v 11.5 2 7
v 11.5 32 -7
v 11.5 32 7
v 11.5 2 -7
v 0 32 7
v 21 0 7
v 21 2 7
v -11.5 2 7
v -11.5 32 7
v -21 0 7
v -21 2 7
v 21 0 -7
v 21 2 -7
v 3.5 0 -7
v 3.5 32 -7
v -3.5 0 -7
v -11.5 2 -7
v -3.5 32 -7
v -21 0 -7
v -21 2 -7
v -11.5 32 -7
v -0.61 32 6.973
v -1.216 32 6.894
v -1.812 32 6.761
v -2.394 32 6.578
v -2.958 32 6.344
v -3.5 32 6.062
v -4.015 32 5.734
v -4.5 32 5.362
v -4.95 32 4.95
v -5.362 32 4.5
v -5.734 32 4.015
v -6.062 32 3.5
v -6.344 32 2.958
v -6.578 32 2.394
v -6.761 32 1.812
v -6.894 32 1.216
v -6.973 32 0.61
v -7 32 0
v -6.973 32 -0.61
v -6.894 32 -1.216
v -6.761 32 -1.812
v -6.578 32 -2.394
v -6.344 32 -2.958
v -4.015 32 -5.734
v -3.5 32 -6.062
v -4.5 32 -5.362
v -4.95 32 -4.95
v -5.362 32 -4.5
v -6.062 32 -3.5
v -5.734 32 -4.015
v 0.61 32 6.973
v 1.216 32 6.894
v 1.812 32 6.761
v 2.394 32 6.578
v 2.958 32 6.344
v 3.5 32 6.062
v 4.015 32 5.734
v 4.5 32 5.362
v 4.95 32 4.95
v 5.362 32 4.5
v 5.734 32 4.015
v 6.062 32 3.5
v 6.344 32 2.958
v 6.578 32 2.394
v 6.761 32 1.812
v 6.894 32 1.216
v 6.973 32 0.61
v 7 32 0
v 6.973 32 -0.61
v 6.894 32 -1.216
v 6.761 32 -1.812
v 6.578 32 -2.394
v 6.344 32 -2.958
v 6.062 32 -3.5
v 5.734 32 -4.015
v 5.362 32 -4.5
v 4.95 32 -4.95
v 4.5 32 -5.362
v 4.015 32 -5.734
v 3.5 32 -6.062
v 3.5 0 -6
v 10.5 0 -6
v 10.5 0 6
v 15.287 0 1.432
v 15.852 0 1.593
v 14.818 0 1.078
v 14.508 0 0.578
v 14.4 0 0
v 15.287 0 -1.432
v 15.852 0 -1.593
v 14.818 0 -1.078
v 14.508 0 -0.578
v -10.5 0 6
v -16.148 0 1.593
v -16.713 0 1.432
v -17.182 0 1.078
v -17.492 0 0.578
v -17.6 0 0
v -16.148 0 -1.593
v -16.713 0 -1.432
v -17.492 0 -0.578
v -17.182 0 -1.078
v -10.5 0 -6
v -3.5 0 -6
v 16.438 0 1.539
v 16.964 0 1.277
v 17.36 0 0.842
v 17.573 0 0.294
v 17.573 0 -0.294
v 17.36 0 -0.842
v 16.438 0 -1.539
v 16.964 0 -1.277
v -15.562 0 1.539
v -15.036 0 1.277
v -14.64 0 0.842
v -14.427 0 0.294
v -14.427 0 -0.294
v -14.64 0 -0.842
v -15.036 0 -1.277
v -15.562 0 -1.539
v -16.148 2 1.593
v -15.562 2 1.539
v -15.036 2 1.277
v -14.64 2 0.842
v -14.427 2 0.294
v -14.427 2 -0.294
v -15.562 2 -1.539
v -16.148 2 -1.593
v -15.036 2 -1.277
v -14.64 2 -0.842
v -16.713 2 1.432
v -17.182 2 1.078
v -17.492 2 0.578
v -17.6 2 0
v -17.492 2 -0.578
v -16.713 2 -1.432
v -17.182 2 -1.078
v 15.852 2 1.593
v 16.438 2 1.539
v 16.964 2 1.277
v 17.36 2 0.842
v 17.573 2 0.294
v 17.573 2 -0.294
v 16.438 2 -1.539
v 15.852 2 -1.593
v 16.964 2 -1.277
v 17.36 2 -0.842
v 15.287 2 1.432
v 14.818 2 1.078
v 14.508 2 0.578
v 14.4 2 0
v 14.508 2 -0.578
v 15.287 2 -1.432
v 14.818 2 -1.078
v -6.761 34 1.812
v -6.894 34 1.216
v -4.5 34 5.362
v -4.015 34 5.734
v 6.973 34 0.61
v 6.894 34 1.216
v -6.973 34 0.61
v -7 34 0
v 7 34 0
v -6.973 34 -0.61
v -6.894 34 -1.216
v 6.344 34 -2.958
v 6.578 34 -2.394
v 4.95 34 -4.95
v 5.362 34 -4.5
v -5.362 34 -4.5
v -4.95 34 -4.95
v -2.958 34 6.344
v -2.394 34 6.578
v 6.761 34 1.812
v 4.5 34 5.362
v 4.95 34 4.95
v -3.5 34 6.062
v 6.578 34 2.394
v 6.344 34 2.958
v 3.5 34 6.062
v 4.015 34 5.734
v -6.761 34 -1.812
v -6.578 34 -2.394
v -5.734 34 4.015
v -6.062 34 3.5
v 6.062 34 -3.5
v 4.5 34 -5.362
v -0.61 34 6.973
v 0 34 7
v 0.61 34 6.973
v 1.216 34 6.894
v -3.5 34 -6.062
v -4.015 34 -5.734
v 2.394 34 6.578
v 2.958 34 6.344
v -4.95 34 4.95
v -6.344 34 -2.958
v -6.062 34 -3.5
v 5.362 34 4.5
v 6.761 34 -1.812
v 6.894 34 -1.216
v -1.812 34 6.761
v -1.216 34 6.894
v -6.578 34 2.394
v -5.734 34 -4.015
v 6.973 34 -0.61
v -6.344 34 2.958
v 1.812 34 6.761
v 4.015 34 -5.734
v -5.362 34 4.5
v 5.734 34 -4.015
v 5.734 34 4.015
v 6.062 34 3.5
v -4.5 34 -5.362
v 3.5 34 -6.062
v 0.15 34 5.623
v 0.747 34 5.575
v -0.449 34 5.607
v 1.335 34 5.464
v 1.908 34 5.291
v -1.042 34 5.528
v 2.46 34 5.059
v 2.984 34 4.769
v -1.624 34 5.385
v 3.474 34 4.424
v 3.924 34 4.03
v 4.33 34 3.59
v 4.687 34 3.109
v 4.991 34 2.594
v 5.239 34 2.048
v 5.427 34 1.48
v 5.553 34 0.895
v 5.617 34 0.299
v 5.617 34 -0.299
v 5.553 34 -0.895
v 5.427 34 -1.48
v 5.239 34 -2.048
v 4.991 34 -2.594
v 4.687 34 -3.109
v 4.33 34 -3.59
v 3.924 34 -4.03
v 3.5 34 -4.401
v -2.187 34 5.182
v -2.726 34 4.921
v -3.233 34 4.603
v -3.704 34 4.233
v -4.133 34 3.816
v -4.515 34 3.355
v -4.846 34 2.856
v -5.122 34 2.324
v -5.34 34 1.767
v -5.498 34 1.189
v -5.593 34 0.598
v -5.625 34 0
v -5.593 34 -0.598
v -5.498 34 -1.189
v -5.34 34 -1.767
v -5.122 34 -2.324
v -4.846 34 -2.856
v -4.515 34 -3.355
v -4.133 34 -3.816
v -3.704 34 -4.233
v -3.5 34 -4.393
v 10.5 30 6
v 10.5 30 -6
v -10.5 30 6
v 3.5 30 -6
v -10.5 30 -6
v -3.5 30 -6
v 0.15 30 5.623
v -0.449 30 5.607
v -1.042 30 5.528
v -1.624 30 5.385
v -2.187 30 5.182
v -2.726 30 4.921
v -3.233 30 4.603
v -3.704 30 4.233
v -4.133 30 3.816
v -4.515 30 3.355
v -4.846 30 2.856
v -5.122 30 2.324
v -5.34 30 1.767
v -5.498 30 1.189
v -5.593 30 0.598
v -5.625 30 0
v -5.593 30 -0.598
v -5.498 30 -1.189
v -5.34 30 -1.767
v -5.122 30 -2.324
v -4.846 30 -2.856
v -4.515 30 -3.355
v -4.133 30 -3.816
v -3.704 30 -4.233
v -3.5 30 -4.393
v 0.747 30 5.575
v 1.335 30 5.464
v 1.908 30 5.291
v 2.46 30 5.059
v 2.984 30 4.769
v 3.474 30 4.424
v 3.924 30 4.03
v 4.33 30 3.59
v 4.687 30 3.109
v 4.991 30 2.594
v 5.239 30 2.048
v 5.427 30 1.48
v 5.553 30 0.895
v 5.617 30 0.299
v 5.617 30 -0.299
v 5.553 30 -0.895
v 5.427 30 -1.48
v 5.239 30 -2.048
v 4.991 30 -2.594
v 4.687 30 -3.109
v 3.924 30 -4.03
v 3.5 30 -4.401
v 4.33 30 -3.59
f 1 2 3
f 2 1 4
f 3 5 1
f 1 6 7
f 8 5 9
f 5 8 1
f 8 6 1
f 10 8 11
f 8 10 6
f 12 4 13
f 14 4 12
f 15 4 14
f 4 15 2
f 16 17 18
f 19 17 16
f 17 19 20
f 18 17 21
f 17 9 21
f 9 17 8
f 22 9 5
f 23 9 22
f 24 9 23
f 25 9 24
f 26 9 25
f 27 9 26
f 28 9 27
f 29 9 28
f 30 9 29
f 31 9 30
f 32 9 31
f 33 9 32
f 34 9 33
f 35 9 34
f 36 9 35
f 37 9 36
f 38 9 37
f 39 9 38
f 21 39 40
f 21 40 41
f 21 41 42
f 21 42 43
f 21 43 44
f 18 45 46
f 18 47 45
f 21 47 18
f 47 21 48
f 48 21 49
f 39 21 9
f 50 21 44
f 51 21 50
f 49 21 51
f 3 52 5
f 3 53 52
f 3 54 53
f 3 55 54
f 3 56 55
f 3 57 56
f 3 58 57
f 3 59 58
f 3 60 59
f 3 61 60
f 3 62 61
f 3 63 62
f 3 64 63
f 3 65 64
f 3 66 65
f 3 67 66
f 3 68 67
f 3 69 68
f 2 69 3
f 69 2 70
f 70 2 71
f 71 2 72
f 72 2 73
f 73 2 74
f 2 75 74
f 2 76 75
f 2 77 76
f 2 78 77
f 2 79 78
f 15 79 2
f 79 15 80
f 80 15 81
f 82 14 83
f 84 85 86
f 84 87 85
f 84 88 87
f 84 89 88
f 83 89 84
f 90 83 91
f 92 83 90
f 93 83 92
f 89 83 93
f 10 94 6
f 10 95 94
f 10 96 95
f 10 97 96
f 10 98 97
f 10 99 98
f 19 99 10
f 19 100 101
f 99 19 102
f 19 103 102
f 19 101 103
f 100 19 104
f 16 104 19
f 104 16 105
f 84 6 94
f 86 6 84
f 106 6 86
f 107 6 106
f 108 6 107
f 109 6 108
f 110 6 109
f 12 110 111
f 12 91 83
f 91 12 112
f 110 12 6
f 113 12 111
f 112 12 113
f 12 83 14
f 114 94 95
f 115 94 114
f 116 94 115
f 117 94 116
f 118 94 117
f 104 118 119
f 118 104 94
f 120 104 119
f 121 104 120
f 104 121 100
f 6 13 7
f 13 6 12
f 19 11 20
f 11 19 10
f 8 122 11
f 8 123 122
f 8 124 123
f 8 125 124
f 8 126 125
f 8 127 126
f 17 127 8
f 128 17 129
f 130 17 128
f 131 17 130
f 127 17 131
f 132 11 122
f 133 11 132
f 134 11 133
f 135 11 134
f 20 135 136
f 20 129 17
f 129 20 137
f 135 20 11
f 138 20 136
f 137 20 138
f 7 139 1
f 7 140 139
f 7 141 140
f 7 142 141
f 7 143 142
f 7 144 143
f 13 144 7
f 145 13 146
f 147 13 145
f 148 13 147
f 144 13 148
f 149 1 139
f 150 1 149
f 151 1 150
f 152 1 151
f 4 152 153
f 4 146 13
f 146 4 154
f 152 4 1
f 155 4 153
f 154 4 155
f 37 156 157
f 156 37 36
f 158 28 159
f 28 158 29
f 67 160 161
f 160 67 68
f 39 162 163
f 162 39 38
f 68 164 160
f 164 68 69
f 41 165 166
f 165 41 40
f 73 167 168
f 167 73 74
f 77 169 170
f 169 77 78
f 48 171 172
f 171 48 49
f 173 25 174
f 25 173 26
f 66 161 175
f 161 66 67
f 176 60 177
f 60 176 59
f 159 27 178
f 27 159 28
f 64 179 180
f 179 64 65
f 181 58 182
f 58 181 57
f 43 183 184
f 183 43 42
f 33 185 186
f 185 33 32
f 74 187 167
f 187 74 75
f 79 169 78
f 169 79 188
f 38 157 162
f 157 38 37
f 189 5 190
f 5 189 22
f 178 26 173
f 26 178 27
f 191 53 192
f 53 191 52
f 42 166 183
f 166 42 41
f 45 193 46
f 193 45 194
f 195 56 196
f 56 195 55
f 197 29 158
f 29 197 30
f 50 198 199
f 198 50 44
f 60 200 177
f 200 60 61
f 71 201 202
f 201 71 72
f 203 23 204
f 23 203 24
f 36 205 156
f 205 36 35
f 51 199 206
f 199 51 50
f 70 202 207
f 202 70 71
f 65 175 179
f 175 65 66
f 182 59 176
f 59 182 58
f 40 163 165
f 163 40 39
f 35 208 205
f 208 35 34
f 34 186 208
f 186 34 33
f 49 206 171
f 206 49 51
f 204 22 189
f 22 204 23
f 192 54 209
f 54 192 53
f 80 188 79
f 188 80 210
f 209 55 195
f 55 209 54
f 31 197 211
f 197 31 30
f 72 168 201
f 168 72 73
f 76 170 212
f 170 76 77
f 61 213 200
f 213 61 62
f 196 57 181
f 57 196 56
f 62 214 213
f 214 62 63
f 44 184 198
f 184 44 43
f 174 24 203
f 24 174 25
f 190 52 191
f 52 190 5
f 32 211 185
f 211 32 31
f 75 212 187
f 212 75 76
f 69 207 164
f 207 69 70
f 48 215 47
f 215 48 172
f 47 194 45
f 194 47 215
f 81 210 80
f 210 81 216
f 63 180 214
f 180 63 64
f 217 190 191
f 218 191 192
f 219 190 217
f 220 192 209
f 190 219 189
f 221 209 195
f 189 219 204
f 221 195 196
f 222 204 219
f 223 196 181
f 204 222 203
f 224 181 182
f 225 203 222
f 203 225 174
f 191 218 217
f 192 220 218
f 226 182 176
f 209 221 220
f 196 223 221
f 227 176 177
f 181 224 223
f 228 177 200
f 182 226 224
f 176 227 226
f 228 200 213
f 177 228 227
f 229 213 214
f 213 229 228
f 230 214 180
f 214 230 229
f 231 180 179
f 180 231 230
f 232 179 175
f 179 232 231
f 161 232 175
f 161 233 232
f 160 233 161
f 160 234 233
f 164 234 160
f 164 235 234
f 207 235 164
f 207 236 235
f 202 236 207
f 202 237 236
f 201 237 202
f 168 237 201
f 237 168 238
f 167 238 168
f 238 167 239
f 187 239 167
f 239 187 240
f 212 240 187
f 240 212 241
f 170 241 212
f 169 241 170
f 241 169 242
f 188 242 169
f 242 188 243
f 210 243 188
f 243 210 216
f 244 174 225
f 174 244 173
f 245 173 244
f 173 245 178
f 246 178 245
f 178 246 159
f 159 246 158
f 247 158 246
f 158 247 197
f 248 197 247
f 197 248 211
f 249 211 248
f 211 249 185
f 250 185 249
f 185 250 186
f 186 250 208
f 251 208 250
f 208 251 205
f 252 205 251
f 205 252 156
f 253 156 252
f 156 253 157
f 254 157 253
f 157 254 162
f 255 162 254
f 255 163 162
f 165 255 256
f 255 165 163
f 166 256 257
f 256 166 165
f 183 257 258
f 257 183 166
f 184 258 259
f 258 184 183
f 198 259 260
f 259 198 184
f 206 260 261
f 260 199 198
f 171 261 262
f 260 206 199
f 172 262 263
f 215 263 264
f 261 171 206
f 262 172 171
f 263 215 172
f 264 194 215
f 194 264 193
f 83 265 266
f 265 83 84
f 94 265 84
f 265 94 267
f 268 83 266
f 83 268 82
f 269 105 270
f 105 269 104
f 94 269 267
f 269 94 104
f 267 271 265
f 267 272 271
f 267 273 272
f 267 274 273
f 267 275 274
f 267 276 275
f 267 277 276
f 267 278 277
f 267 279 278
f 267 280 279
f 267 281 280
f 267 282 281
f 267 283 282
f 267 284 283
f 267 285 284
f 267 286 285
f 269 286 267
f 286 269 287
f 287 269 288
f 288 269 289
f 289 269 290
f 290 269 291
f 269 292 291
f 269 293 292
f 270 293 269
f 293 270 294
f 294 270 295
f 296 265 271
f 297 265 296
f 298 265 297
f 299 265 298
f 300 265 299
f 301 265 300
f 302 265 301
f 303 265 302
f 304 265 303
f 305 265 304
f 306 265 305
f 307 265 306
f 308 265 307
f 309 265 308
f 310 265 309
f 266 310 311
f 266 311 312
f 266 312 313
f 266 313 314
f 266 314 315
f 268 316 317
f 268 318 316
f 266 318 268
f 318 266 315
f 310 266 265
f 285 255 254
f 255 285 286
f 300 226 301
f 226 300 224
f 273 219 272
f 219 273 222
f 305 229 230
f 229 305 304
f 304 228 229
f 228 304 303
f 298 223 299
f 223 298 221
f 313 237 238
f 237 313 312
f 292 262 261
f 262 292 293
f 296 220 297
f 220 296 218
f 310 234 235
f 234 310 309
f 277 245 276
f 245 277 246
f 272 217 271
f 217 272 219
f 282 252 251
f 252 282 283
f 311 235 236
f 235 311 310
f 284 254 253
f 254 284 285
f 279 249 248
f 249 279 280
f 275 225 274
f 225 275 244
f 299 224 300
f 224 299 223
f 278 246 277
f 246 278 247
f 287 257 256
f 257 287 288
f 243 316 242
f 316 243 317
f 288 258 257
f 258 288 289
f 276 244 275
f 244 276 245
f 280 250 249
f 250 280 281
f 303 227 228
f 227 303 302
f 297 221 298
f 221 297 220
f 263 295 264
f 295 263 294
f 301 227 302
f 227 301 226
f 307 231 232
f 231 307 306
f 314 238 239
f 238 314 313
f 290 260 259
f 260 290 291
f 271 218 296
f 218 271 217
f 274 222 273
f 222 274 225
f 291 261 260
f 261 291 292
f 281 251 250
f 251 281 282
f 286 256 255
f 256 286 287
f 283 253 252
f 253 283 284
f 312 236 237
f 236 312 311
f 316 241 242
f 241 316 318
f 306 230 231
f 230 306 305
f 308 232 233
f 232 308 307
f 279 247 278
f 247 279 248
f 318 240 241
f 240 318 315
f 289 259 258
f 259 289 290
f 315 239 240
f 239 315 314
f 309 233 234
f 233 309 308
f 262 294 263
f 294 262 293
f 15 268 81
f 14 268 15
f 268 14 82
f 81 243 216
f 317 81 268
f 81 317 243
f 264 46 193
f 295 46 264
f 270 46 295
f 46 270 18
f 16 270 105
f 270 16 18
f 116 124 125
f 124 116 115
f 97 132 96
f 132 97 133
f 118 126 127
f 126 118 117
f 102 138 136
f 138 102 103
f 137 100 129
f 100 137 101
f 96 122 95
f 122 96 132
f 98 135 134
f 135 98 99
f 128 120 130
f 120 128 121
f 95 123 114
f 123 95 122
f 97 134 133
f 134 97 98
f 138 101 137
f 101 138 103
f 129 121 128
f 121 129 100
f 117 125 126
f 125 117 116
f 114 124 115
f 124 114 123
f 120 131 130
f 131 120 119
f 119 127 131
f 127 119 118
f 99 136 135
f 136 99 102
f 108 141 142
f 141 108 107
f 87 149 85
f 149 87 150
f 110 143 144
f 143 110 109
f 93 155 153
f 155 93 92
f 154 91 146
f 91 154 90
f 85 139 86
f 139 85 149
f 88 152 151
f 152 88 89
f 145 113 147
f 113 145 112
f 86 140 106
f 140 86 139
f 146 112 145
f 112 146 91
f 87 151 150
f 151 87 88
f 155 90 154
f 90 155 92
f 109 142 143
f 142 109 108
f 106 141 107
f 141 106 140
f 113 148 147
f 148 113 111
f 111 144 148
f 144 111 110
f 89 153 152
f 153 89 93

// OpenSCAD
// Higher definition curves
$fa = 5;
$fs = 0.6;

include <BOSL/constants.scad>
use <BOSL/shapes.scad>

difference() {
    union() {
        cuboid([23, 32, 14], align=V_BACK);
        cuboid([42, 2, 14], align=V_BACK);
        translate([0, 30, 0]) ycyl(4, d=14, align=V_BACK);
    }
    cuboid([21, 30, 12], align=V_BACK);
    translate([0, 30, 0]) ycyl(4, d=11.25, align=V_BACK);
    cuboid([7, 40, 15], align=[0, 1, -1]);
    // Mounting
    translate([-16, 0, 0]) ycyl(2, d=3.2, align=V_BACK);
    translate([16, 0, 0]) ycyl(2, d=3.2, align=V_BACK);
}
